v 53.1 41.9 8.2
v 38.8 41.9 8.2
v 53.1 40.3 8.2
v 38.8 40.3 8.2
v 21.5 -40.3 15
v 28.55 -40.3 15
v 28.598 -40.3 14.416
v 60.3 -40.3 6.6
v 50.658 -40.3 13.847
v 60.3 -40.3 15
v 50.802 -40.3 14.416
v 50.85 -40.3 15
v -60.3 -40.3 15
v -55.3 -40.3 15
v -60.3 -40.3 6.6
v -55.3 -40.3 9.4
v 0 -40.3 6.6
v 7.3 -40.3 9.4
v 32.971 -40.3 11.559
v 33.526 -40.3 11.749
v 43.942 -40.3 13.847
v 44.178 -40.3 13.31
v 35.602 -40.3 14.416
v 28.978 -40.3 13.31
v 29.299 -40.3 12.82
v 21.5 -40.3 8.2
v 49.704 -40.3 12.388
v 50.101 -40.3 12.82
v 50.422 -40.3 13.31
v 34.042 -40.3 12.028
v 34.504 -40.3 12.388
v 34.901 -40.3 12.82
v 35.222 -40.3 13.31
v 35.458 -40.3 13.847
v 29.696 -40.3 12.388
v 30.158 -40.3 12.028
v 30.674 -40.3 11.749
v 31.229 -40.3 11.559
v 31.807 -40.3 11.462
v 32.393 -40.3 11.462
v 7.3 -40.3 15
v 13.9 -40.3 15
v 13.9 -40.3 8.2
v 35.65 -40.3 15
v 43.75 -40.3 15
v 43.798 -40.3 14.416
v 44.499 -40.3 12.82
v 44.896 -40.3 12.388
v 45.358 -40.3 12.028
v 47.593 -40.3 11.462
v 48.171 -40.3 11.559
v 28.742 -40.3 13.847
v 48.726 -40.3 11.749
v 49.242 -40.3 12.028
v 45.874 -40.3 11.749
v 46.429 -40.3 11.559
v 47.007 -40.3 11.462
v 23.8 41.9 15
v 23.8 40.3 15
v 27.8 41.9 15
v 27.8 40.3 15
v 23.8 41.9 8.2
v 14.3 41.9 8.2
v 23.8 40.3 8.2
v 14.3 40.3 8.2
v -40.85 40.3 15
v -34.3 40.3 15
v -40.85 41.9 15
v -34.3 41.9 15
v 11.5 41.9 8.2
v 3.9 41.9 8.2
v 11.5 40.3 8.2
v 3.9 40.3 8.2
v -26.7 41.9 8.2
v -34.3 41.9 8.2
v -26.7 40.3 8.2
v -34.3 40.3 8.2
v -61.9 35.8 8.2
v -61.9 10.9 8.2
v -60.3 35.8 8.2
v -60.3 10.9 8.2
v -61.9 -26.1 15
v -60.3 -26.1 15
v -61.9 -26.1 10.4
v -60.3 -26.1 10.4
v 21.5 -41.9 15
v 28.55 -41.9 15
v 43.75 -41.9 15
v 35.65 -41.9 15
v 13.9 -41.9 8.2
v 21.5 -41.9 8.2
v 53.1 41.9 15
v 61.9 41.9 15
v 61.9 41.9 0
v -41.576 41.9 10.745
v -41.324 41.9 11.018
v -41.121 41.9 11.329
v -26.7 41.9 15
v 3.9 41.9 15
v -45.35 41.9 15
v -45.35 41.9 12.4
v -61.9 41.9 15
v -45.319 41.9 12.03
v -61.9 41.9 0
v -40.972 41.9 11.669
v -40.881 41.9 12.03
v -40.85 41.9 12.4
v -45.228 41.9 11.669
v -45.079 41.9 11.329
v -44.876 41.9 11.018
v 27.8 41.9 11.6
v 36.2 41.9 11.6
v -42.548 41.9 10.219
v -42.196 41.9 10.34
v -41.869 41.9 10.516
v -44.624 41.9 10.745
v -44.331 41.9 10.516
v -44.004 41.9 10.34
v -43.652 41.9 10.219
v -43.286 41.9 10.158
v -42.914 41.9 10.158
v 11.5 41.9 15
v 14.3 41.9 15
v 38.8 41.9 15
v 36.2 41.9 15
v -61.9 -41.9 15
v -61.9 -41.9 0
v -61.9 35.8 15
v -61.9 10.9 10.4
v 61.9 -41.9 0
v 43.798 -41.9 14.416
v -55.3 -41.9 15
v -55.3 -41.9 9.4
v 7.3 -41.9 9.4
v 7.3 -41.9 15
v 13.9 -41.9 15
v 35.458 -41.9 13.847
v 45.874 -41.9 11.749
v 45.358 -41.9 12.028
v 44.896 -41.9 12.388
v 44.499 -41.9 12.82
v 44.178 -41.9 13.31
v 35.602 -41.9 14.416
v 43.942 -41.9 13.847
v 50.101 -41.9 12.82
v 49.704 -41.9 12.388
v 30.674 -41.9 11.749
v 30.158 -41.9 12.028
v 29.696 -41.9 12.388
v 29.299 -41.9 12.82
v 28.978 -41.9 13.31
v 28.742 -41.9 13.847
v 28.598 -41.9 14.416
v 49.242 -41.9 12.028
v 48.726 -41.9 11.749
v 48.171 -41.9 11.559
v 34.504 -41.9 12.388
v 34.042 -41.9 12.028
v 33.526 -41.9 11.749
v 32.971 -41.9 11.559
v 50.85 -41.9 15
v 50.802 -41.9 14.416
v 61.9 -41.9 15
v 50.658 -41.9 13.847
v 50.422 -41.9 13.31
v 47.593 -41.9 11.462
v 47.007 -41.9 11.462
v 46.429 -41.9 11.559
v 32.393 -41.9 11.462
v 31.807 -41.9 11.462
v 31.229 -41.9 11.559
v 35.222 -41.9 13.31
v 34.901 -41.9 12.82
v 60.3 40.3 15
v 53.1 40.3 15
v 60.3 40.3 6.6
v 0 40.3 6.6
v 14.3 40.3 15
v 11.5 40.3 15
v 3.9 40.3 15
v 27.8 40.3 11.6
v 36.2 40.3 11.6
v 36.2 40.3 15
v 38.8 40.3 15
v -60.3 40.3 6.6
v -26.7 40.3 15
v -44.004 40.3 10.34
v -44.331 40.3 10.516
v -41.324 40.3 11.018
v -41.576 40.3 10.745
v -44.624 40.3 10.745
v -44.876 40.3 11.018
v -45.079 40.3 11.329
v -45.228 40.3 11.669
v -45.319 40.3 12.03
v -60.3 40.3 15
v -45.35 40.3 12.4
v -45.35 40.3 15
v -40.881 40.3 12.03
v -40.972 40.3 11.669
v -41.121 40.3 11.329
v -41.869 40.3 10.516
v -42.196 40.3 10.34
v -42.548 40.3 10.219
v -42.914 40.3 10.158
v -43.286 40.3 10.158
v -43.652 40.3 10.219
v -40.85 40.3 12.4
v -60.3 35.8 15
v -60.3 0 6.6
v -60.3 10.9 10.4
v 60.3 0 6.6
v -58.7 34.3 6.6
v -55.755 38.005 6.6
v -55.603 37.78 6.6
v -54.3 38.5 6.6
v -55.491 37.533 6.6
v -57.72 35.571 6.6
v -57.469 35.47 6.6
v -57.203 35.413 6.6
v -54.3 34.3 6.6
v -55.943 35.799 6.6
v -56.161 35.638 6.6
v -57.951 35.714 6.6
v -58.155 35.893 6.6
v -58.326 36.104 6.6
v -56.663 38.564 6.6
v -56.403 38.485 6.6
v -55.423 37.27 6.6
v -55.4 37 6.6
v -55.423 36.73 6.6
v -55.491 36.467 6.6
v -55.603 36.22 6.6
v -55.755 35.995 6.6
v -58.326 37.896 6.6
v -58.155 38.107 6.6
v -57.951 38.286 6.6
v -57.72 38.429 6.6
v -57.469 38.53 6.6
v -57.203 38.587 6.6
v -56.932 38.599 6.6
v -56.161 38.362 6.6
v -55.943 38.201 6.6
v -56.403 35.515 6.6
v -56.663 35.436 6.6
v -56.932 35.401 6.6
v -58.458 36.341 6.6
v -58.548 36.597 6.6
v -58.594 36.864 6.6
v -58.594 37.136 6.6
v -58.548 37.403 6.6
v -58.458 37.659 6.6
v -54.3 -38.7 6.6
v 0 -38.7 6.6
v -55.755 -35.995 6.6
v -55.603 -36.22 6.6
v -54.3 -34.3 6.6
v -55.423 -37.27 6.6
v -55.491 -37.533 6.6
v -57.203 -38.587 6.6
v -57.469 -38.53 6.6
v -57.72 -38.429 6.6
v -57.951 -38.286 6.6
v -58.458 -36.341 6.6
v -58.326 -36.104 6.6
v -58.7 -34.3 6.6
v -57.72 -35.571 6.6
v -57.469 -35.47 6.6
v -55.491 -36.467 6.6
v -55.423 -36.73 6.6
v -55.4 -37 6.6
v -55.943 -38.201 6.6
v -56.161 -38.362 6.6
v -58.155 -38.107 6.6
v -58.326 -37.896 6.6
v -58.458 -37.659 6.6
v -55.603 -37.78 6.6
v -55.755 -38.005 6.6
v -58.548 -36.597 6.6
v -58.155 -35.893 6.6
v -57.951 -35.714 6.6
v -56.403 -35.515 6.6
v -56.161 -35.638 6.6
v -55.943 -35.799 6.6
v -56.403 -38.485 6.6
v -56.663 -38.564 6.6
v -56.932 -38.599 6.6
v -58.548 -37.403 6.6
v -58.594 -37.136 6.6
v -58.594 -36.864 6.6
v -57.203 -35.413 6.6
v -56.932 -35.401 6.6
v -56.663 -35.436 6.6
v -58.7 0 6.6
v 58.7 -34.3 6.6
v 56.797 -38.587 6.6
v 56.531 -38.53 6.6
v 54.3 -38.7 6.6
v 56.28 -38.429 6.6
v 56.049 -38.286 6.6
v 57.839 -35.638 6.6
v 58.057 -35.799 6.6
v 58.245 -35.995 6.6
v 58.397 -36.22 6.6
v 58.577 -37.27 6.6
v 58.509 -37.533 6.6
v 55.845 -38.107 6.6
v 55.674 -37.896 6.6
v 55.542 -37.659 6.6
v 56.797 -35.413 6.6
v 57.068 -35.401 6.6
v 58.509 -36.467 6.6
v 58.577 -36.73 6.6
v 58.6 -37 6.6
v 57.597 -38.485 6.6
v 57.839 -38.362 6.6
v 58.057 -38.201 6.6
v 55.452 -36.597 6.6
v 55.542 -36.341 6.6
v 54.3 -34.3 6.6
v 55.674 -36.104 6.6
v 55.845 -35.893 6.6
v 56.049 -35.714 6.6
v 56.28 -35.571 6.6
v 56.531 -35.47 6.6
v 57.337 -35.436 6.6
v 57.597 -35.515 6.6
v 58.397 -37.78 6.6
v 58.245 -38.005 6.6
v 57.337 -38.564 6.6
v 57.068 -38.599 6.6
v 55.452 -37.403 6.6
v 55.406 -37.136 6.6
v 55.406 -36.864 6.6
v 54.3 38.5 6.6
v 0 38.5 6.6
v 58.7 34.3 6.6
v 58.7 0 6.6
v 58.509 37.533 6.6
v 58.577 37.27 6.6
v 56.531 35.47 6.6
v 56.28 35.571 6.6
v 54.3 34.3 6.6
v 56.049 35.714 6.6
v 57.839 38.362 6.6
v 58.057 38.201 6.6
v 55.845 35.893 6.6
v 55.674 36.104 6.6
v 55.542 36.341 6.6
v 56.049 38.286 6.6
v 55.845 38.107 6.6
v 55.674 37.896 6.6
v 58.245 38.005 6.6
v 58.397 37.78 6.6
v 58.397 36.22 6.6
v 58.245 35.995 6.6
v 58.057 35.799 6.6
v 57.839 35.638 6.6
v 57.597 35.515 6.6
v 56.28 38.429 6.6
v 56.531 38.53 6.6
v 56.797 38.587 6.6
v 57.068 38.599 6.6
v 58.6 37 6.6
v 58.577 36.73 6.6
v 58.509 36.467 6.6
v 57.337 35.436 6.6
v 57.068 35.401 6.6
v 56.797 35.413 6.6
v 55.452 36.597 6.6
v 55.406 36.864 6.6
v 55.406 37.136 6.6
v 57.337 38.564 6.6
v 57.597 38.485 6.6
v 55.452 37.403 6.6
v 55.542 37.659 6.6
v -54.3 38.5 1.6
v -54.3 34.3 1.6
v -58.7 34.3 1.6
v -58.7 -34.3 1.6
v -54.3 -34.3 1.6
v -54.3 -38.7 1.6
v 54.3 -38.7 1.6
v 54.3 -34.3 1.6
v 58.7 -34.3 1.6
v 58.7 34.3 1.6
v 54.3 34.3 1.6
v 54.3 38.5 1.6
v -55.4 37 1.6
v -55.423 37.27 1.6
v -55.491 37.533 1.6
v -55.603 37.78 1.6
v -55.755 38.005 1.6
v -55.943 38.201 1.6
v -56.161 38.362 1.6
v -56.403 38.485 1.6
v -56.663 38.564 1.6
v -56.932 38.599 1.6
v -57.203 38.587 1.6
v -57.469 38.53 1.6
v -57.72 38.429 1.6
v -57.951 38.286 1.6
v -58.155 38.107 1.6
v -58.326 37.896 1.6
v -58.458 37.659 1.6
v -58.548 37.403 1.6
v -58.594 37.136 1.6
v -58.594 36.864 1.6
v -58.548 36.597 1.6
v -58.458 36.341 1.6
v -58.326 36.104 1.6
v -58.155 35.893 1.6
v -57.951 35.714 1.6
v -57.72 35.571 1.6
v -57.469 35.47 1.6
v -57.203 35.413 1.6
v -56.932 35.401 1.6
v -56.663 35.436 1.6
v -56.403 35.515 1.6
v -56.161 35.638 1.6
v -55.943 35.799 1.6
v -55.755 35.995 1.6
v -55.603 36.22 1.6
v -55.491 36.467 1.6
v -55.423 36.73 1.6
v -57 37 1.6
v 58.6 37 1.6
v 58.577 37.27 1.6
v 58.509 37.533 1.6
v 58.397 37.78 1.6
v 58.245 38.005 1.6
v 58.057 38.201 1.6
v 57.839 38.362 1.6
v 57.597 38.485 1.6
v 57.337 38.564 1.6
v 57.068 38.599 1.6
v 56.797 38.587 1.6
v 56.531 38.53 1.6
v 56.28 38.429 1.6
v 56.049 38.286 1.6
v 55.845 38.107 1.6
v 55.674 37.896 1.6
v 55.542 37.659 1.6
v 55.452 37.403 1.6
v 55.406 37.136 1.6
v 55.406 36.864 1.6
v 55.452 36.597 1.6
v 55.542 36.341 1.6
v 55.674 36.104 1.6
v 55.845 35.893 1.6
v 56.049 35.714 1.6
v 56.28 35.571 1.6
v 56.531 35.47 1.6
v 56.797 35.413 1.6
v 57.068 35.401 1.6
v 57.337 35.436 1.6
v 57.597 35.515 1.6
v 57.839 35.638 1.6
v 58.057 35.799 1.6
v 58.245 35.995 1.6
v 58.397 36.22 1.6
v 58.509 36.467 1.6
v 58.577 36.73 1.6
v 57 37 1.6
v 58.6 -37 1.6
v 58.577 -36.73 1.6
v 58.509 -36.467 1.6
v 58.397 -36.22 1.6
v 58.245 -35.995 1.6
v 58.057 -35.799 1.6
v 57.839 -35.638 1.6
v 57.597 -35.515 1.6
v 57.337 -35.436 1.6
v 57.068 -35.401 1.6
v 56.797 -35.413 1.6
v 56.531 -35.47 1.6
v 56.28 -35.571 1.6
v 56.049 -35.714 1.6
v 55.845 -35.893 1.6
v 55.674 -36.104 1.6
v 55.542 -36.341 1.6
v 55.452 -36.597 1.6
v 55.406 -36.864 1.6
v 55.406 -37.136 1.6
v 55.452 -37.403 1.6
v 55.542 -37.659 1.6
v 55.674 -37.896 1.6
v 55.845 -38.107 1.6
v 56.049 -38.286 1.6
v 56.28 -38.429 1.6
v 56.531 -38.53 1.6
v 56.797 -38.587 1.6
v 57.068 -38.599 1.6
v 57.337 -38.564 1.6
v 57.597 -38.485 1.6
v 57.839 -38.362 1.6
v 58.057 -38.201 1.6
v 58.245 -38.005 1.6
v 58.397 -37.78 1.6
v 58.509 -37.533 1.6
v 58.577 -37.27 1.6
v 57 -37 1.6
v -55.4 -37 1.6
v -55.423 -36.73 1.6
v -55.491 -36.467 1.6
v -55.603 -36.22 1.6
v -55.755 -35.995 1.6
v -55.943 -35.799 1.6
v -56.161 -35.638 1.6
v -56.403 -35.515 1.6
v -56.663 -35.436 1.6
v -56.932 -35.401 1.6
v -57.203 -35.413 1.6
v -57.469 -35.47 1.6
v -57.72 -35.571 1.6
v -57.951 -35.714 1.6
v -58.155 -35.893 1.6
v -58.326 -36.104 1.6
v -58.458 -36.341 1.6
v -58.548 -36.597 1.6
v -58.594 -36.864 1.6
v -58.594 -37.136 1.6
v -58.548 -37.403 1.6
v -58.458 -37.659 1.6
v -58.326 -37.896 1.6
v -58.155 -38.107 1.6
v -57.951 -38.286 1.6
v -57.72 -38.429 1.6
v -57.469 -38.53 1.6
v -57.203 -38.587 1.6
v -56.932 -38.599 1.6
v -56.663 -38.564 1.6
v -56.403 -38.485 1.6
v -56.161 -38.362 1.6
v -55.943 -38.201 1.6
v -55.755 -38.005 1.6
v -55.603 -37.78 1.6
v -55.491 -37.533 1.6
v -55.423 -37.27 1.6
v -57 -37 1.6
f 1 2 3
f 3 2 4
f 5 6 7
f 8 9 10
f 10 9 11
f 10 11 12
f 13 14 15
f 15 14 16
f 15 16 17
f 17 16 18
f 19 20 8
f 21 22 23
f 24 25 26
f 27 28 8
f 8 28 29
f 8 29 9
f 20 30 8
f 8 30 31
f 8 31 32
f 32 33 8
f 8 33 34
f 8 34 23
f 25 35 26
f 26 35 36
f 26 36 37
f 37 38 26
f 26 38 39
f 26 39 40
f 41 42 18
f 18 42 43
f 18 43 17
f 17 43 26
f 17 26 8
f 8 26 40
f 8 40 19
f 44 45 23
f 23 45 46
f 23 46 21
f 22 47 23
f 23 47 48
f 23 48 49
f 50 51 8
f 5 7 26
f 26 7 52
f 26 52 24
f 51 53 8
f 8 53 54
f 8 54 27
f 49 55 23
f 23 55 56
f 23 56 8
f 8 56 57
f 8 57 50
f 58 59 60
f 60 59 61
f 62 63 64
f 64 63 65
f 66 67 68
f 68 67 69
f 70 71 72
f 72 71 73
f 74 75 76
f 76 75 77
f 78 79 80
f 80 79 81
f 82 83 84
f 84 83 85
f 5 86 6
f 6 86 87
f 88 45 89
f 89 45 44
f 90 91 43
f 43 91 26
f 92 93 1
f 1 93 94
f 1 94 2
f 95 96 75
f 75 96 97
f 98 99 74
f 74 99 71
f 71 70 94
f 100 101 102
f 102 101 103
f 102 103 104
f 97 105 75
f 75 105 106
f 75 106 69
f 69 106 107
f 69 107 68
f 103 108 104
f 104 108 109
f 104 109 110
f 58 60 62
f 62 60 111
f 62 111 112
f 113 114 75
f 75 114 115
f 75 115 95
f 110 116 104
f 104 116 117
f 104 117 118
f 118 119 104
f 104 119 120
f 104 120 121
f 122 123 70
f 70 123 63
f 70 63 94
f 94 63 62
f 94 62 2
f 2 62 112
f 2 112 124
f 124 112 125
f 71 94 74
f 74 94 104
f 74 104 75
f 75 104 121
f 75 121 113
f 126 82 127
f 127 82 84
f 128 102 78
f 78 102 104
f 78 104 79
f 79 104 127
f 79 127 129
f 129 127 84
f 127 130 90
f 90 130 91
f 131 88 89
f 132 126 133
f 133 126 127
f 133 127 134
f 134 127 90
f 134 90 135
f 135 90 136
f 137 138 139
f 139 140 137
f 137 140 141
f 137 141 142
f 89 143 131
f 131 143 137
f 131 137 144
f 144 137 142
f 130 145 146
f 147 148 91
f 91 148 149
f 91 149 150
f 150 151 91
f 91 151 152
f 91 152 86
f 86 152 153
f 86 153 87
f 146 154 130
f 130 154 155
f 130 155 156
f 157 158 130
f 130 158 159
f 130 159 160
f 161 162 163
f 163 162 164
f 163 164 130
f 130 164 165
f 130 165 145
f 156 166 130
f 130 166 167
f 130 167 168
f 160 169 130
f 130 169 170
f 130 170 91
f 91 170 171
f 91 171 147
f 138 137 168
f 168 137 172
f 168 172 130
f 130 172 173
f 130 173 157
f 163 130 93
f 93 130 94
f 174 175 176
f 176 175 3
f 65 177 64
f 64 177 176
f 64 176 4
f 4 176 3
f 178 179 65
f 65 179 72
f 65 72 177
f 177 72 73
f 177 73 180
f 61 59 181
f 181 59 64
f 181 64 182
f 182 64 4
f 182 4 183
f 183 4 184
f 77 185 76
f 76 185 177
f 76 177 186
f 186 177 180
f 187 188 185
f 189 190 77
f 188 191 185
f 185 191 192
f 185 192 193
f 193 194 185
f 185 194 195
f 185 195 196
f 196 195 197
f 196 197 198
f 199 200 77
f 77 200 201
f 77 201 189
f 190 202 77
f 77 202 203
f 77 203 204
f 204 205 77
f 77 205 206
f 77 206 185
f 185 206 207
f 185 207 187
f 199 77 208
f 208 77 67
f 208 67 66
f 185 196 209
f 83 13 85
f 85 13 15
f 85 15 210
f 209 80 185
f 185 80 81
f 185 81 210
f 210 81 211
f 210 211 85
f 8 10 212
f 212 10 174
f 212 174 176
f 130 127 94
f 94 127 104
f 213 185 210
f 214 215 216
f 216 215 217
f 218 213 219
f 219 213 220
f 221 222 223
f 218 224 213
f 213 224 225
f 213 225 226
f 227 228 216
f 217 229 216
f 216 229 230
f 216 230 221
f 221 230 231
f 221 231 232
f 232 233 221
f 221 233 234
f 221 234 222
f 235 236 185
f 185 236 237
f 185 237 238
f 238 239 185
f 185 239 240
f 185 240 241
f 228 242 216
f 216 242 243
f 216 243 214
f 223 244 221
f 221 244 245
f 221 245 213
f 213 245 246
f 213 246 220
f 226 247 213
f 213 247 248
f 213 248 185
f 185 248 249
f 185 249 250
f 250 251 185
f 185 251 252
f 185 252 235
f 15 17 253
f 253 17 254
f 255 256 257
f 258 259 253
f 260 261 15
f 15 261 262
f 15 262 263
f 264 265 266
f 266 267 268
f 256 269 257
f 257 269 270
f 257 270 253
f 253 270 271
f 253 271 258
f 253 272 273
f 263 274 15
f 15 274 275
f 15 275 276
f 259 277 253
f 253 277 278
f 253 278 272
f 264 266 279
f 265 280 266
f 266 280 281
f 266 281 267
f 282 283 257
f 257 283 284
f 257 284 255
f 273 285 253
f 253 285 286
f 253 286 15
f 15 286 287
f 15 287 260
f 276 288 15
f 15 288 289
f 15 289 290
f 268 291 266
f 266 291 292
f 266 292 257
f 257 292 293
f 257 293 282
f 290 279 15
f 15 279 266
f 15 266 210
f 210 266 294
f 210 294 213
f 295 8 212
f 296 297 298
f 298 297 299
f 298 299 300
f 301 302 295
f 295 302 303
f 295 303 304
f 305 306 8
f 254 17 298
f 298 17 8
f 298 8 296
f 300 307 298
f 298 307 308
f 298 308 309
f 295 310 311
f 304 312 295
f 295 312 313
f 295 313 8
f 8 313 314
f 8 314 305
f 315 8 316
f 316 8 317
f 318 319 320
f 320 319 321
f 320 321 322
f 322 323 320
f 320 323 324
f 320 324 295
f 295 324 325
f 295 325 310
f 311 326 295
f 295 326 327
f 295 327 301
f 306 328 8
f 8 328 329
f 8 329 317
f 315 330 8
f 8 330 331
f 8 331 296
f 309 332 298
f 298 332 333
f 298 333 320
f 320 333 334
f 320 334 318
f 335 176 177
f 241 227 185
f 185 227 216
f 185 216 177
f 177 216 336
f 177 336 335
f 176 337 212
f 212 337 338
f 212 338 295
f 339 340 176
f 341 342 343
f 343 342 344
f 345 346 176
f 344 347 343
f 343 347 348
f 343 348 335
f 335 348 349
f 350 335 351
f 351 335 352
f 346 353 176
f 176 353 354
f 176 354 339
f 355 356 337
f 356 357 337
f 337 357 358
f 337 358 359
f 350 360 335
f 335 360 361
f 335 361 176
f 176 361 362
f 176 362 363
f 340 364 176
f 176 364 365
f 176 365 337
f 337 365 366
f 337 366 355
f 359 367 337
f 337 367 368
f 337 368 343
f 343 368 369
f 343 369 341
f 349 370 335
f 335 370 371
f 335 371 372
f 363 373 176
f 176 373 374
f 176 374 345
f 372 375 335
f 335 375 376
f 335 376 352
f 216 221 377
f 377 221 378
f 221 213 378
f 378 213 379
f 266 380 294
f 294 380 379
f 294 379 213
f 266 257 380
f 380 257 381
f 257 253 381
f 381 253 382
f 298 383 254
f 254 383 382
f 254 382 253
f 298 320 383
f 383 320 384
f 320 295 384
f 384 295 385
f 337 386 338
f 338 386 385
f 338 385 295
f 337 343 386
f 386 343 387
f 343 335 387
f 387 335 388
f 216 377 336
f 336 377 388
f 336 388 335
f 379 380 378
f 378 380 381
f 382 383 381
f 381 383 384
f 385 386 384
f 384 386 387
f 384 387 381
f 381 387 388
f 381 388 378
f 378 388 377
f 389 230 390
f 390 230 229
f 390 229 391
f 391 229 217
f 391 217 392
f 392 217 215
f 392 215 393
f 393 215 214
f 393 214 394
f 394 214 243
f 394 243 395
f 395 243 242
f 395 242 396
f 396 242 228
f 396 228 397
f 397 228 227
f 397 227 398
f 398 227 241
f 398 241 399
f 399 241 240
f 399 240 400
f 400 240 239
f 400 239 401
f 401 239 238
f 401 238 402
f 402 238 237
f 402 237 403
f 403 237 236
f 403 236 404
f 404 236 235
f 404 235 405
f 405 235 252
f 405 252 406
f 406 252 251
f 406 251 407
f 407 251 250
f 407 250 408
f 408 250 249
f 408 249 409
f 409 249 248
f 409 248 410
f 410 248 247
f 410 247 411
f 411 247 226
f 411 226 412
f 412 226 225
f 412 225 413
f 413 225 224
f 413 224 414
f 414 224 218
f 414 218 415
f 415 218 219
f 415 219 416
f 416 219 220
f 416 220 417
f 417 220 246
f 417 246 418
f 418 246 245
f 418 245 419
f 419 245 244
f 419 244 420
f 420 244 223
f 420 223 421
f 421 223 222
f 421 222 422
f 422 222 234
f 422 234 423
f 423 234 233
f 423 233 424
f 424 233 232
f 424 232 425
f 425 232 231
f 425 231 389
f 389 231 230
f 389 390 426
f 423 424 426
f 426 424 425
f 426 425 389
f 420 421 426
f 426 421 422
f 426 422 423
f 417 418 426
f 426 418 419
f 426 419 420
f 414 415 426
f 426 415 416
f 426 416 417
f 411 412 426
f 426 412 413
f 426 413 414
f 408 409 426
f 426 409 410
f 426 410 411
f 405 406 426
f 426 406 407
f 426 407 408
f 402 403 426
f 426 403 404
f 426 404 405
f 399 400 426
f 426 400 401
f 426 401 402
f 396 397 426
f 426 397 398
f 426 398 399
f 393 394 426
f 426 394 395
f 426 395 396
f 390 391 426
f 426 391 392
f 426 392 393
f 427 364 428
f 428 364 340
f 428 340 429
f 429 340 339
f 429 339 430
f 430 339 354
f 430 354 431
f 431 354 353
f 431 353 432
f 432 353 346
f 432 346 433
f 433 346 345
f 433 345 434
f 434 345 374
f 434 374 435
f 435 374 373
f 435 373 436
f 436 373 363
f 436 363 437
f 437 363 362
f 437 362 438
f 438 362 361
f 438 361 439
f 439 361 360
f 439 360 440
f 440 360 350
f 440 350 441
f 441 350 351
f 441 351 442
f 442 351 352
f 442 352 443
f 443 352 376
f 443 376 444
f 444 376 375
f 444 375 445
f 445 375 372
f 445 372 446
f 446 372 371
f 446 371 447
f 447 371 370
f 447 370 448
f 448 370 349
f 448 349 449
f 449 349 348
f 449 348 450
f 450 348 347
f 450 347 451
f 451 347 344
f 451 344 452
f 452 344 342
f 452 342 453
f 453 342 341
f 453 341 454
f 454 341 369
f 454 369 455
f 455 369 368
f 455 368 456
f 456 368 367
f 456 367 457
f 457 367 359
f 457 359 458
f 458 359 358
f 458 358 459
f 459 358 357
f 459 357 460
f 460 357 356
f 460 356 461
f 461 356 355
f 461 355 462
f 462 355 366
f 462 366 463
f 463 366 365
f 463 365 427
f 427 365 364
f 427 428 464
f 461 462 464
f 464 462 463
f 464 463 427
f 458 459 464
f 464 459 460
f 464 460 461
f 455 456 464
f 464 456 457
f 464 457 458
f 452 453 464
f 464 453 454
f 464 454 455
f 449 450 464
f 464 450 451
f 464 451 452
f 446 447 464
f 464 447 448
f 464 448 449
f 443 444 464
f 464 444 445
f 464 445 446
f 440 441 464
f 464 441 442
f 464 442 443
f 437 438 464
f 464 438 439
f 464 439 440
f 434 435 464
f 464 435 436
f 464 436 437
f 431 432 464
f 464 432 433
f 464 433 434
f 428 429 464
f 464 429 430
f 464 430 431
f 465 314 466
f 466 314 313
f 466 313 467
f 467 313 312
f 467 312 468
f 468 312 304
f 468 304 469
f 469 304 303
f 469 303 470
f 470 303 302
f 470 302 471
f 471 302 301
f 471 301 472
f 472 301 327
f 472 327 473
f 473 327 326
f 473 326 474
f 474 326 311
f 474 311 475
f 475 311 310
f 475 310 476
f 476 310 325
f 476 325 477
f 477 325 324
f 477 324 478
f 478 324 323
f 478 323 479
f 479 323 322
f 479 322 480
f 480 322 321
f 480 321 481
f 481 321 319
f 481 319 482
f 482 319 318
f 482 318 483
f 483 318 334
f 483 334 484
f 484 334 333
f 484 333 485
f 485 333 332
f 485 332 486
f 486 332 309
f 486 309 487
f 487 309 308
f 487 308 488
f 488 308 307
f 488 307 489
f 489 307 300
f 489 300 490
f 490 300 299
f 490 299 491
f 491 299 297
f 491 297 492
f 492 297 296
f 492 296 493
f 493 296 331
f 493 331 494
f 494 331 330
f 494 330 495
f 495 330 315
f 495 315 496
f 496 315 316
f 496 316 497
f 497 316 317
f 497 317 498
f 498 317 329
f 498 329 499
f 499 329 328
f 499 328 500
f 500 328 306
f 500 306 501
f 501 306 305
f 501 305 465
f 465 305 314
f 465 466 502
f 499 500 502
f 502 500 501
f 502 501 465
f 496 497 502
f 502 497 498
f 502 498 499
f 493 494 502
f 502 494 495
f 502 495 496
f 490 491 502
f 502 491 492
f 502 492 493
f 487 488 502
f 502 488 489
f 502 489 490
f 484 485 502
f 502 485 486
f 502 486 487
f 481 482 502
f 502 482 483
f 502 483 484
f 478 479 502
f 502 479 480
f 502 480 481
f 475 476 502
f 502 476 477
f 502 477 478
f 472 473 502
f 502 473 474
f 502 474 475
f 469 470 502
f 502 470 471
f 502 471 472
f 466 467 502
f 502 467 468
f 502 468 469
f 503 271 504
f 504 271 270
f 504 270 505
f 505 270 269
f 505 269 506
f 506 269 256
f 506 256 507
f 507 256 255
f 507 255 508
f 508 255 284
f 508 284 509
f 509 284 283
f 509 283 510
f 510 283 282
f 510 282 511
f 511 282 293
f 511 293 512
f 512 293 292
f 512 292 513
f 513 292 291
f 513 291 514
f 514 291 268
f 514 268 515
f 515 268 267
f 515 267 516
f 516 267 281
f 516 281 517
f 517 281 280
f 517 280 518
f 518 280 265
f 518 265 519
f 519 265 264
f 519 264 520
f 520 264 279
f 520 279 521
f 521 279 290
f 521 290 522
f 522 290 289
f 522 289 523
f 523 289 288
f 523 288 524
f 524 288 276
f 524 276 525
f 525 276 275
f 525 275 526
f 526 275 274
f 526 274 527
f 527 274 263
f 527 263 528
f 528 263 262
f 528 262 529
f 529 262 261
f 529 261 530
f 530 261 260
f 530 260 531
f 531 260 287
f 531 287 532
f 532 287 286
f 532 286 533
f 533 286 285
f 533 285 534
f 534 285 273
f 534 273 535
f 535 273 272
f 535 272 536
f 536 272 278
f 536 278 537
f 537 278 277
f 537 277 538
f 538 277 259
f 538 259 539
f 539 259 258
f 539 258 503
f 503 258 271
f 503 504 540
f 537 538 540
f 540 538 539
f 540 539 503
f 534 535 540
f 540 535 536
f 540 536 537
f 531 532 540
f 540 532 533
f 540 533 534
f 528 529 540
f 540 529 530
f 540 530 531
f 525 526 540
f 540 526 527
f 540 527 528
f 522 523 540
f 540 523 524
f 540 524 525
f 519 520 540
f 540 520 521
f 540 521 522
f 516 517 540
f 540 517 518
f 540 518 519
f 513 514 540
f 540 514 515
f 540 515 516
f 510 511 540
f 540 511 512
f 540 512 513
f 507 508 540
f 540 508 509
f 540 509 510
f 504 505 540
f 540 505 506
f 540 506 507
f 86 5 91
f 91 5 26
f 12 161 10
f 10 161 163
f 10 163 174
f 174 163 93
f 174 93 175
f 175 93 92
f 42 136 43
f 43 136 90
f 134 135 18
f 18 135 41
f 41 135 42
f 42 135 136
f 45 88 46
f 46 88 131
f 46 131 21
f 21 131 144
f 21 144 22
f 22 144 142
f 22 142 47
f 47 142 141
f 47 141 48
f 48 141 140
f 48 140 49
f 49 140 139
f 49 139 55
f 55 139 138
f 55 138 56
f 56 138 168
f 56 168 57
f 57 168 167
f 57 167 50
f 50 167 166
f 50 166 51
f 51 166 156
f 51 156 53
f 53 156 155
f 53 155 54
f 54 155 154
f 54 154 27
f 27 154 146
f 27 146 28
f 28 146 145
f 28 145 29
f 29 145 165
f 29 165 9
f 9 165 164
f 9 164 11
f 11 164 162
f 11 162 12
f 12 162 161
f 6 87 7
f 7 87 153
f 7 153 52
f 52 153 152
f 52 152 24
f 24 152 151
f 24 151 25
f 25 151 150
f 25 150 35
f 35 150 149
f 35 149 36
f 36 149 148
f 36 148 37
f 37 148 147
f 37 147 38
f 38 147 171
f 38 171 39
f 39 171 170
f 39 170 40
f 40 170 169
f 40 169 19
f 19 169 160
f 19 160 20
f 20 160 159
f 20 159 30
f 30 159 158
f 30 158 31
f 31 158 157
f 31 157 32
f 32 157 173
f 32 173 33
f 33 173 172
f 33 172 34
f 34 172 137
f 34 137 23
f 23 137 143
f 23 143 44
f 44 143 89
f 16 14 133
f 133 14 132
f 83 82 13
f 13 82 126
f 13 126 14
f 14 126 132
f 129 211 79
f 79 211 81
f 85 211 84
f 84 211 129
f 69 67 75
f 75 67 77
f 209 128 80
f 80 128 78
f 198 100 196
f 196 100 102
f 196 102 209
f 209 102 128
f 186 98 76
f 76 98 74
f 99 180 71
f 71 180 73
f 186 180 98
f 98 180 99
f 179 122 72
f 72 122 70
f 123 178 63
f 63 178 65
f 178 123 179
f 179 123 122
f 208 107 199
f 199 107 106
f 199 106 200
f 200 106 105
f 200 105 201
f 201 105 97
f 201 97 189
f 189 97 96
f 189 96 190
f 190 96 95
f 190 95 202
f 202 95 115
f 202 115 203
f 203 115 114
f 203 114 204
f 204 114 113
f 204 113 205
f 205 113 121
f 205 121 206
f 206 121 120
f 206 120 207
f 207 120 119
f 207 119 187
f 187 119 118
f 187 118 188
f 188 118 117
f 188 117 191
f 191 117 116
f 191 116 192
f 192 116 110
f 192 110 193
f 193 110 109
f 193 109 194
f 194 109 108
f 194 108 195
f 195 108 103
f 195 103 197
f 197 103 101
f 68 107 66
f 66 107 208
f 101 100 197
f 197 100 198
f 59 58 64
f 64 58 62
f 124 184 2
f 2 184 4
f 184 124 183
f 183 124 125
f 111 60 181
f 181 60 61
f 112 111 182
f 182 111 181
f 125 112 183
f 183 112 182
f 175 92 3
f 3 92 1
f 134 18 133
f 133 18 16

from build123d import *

# Parameters (mm, degrees)
SKETCH1_W            = 120.6
SKETCH1_H            = 80.6
BOSS_EXTRUDE1_DEPTH  = 1.6
SKETCH2_W            = 123.8
SKETCH2_H            = 83.8
SKETCH2_W_2          = 120.6
SKETCH2_H_2          = 80.6
BOSS_EXTRUDE2_DEPTH  = 8.2
SKETCH3_W            = 120.6
SKETCH3_H            = 80.6
BOSS_EXTRUDE3_DEPTH  = 5
SKETCH4_R            = 1.6
CUT_EXTRUDE1_DEPTH   = 5
SKETCH5_W            = 40.4
SKETCH5_H            = 1.6
SKETCH5_W_2          = 6.6
BOSS_EXTRUDE4_DEPTH  = 6.8
SKETCH6_R            = 3.55
CUT_EXTRUDE2_DEPTH   = 6.8
BOSS_EXTRUDE5_DEPTH  = 6.8
SKETCH8_W            = 1.6
SKETCH8_H            = 37
BOSS_EXTRUDE6_DEPTH  = 2.2
SKETCH9_W            = 30.6
SKETCH9_H            = 1.6
SKETCH9_W_2          = 2.8
BOSS_EXTRUDE7_DEPTH  = 6.8
CUT_EXTRUDE3_DEPTH   = 6.8
SKETCH11_W           = 15
SKETCH11_H           = 1.6
BOSS_EXTRUDE8_DEPTH  = 6.8
SKETCH12_W           = 8.4
SKETCH12_H           = 3.4
CUT_EXTRUDE4_DEPTH   = 6.8
BOSS_EXTRUDE9_DEPTH  = 6.8
SKETCH14_W           = 62.6
SKETCH14_H           = 1.6
BOSS_EXTRUDE10_DEPTH = 1.2


with BuildPart() as part:
    # Sketch1 → Boss-Extrude1 (new body)
    with BuildSketch(Plane.XY):
        Rectangle(SKETCH1_W, SKETCH1_H)
    extrude(amount=BOSS_EXTRUDE1_DEPTH)

    # Sketch2 → Boss-Extrude2 (add)
    with BuildSketch(Plane.XY):
        Rectangle(SKETCH2_W, SKETCH2_H)
        Rectangle(SKETCH2_W_2, SKETCH2_H_2, mode=Mode.SUBTRACT)
    extrude(amount=BOSS_EXTRUDE2_DEPTH)

    # Sketch3 → Boss-Extrude3 (add)
    with BuildSketch(Plane.XY.offset(1.6)):
        Rectangle(SKETCH3_W, SKETCH3_H)
        Polygon((-58.7, 34.3), (-54.3, 34.3), (-54.3, 38.5), (54.3, 38.5), (54.3, 34.3), (58.7, 34.3), (58.7, -34.3), (54.3, -34.3), (54.3, -38.7), (-54.3, -38.7), (-54.3, -34.3), (-58.7, -34.3), align=None, mode=Mode.SUBTRACT)
    extrude(amount=BOSS_EXTRUDE3_DEPTH)

    # Sketch4 → Cut-Extrude1 (cut)
    with BuildSketch(Plane.XY.offset(6.6)):
        with Locations((-57, 37)):
            Circle(SKETCH4_R)
        with Locations((57, 37)):
            Circle(SKETCH4_R)
        with Locations((57, -37)):
            Circle(SKETCH4_R)
        with Locations((-57, -37)):
            Circle(SKETCH4_R)
    extrude(amount=-CUT_EXTRUDE1_DEPTH, mode=Mode.SUBTRACT)

    # Sketch5 → Boss-Extrude4 (add)
    with BuildSketch(Plane.XY.offset(8.2)):
        with Locations((41.7, -41.1)):
            Rectangle(SKETCH5_W, SKETCH5_H)
        with Locations((10.6, -41.1)):
            Rectangle(SKETCH5_W_2, SKETCH5_H)
    extrude(amount=BOSS_EXTRUDE4_DEPTH)

    # Sketch6 → Cut-Extrude2 (cut)
    with BuildSketch(Plane.XZ.offset(41.9)):
        with Locations((32.1, 15)):
            Circle(SKETCH6_R)
        with Locations((47.3, 15)):
            Circle(SKETCH6_R)
    extrude(amount=-CUT_EXTRUDE2_DEPTH, mode=Mode.SUBTRACT)

    # Sketch7 → Boss-Extrude5 (add)
    with BuildSketch(Plane.XY.offset(8.2)):
        Polygon((-61.9, -26.1), (-61.9, -41.9), (-55.3, -41.9), (-55.3, -40.3), (-60.3, -40.3), (-60.3, -26.1), align=None)
    extrude(amount=BOSS_EXTRUDE5_DEPTH)

    # Sketch8 → Boss-Extrude6 (add)
    with BuildSketch(Plane.XY.offset(8.2)):
        with Locations((-61.1, -7.6)):
            Rectangle(SKETCH8_W, SKETCH8_H)
    extrude(amount=BOSS_EXTRUDE6_DEPTH)

    # Sketch9 → Boss-Extrude7 (add)
    with BuildSketch(Plane.XY.offset(8.2)):
        Polygon((-60.3, 35.8), (-61.9, 35.8), (-61.9, 41.9), (-34.3, 41.9), (-34.3, 40.3), (-60.3, 40.3), align=None)
        with Locations((-11.4, 41.1)):
            Rectangle(SKETCH9_W, SKETCH9_H)
        with Locations((12.9, 41.1)):
            Rectangle(SKETCH9_W_2, SKETCH9_H)
    extrude(amount=BOSS_EXTRUDE7_DEPTH)

    # Sketch10 → Cut-Extrude3 (cut)
    with BuildSketch(Plane(origin=(0, 41.9, 0), x_dir=(1, 0, 0), z_dir=(0, 1, 0))):
        with BuildLine():
            Line((-45.35, -12.4), (-45.35, -15))
            Line((-45.35, -15), (-40.85, -15))
            Line((-40.85, -15), (-40.85, -12.4))
            ThreePointArc((-40.85, -12.4), (-43.1, -10.15), (-45.35, -12.4))
        make_face()
    extrude(amount=-CUT_EXTRUDE3_DEPTH, mode=Mode.SUBTRACT)

    # Sketch11 → Boss-Extrude8 (add)
    with BuildSketch(Plane.XY.offset(8.2)):
        with Locations((31.3, 41.1)):
            Rectangle(SKETCH11_W, SKETCH11_H)
    extrude(amount=BOSS_EXTRUDE8_DEPTH)

    # Sketch12 → Cut-Extrude4 (cut)
    with BuildSketch(Plane(origin=(0, 41.9, 0), x_dir=(1, 0, 0), z_dir=(0, 1, 0))):
        with Locations((32, -13.3)):
            Rectangle(SKETCH12_W, SKETCH12_H)
    extrude(amount=-CUT_EXTRUDE4_DEPTH, mode=Mode.SUBTRACT)

    # Sketch13 → Boss-Extrude9 (add)
    with BuildSketch(Plane.XY.offset(8.2)):
        Polygon((61.9, -40.3), (60.3, -40.3), (60.3, 40.3), (53.1, 40.3), (53.1, 41.9), (61.9, 41.9), align=None)
    extrude(amount=BOSS_EXTRUDE9_DEPTH)

    # Sketch14 → Boss-Extrude10 (add)
    with BuildSketch(Plane.XY.offset(8.2)):
        with Locations((-24, -41.1)):
            Rectangle(SKETCH14_W, SKETCH14_H)
    extrude(amount=BOSS_EXTRUDE10_DEPTH)


solid = part.part
